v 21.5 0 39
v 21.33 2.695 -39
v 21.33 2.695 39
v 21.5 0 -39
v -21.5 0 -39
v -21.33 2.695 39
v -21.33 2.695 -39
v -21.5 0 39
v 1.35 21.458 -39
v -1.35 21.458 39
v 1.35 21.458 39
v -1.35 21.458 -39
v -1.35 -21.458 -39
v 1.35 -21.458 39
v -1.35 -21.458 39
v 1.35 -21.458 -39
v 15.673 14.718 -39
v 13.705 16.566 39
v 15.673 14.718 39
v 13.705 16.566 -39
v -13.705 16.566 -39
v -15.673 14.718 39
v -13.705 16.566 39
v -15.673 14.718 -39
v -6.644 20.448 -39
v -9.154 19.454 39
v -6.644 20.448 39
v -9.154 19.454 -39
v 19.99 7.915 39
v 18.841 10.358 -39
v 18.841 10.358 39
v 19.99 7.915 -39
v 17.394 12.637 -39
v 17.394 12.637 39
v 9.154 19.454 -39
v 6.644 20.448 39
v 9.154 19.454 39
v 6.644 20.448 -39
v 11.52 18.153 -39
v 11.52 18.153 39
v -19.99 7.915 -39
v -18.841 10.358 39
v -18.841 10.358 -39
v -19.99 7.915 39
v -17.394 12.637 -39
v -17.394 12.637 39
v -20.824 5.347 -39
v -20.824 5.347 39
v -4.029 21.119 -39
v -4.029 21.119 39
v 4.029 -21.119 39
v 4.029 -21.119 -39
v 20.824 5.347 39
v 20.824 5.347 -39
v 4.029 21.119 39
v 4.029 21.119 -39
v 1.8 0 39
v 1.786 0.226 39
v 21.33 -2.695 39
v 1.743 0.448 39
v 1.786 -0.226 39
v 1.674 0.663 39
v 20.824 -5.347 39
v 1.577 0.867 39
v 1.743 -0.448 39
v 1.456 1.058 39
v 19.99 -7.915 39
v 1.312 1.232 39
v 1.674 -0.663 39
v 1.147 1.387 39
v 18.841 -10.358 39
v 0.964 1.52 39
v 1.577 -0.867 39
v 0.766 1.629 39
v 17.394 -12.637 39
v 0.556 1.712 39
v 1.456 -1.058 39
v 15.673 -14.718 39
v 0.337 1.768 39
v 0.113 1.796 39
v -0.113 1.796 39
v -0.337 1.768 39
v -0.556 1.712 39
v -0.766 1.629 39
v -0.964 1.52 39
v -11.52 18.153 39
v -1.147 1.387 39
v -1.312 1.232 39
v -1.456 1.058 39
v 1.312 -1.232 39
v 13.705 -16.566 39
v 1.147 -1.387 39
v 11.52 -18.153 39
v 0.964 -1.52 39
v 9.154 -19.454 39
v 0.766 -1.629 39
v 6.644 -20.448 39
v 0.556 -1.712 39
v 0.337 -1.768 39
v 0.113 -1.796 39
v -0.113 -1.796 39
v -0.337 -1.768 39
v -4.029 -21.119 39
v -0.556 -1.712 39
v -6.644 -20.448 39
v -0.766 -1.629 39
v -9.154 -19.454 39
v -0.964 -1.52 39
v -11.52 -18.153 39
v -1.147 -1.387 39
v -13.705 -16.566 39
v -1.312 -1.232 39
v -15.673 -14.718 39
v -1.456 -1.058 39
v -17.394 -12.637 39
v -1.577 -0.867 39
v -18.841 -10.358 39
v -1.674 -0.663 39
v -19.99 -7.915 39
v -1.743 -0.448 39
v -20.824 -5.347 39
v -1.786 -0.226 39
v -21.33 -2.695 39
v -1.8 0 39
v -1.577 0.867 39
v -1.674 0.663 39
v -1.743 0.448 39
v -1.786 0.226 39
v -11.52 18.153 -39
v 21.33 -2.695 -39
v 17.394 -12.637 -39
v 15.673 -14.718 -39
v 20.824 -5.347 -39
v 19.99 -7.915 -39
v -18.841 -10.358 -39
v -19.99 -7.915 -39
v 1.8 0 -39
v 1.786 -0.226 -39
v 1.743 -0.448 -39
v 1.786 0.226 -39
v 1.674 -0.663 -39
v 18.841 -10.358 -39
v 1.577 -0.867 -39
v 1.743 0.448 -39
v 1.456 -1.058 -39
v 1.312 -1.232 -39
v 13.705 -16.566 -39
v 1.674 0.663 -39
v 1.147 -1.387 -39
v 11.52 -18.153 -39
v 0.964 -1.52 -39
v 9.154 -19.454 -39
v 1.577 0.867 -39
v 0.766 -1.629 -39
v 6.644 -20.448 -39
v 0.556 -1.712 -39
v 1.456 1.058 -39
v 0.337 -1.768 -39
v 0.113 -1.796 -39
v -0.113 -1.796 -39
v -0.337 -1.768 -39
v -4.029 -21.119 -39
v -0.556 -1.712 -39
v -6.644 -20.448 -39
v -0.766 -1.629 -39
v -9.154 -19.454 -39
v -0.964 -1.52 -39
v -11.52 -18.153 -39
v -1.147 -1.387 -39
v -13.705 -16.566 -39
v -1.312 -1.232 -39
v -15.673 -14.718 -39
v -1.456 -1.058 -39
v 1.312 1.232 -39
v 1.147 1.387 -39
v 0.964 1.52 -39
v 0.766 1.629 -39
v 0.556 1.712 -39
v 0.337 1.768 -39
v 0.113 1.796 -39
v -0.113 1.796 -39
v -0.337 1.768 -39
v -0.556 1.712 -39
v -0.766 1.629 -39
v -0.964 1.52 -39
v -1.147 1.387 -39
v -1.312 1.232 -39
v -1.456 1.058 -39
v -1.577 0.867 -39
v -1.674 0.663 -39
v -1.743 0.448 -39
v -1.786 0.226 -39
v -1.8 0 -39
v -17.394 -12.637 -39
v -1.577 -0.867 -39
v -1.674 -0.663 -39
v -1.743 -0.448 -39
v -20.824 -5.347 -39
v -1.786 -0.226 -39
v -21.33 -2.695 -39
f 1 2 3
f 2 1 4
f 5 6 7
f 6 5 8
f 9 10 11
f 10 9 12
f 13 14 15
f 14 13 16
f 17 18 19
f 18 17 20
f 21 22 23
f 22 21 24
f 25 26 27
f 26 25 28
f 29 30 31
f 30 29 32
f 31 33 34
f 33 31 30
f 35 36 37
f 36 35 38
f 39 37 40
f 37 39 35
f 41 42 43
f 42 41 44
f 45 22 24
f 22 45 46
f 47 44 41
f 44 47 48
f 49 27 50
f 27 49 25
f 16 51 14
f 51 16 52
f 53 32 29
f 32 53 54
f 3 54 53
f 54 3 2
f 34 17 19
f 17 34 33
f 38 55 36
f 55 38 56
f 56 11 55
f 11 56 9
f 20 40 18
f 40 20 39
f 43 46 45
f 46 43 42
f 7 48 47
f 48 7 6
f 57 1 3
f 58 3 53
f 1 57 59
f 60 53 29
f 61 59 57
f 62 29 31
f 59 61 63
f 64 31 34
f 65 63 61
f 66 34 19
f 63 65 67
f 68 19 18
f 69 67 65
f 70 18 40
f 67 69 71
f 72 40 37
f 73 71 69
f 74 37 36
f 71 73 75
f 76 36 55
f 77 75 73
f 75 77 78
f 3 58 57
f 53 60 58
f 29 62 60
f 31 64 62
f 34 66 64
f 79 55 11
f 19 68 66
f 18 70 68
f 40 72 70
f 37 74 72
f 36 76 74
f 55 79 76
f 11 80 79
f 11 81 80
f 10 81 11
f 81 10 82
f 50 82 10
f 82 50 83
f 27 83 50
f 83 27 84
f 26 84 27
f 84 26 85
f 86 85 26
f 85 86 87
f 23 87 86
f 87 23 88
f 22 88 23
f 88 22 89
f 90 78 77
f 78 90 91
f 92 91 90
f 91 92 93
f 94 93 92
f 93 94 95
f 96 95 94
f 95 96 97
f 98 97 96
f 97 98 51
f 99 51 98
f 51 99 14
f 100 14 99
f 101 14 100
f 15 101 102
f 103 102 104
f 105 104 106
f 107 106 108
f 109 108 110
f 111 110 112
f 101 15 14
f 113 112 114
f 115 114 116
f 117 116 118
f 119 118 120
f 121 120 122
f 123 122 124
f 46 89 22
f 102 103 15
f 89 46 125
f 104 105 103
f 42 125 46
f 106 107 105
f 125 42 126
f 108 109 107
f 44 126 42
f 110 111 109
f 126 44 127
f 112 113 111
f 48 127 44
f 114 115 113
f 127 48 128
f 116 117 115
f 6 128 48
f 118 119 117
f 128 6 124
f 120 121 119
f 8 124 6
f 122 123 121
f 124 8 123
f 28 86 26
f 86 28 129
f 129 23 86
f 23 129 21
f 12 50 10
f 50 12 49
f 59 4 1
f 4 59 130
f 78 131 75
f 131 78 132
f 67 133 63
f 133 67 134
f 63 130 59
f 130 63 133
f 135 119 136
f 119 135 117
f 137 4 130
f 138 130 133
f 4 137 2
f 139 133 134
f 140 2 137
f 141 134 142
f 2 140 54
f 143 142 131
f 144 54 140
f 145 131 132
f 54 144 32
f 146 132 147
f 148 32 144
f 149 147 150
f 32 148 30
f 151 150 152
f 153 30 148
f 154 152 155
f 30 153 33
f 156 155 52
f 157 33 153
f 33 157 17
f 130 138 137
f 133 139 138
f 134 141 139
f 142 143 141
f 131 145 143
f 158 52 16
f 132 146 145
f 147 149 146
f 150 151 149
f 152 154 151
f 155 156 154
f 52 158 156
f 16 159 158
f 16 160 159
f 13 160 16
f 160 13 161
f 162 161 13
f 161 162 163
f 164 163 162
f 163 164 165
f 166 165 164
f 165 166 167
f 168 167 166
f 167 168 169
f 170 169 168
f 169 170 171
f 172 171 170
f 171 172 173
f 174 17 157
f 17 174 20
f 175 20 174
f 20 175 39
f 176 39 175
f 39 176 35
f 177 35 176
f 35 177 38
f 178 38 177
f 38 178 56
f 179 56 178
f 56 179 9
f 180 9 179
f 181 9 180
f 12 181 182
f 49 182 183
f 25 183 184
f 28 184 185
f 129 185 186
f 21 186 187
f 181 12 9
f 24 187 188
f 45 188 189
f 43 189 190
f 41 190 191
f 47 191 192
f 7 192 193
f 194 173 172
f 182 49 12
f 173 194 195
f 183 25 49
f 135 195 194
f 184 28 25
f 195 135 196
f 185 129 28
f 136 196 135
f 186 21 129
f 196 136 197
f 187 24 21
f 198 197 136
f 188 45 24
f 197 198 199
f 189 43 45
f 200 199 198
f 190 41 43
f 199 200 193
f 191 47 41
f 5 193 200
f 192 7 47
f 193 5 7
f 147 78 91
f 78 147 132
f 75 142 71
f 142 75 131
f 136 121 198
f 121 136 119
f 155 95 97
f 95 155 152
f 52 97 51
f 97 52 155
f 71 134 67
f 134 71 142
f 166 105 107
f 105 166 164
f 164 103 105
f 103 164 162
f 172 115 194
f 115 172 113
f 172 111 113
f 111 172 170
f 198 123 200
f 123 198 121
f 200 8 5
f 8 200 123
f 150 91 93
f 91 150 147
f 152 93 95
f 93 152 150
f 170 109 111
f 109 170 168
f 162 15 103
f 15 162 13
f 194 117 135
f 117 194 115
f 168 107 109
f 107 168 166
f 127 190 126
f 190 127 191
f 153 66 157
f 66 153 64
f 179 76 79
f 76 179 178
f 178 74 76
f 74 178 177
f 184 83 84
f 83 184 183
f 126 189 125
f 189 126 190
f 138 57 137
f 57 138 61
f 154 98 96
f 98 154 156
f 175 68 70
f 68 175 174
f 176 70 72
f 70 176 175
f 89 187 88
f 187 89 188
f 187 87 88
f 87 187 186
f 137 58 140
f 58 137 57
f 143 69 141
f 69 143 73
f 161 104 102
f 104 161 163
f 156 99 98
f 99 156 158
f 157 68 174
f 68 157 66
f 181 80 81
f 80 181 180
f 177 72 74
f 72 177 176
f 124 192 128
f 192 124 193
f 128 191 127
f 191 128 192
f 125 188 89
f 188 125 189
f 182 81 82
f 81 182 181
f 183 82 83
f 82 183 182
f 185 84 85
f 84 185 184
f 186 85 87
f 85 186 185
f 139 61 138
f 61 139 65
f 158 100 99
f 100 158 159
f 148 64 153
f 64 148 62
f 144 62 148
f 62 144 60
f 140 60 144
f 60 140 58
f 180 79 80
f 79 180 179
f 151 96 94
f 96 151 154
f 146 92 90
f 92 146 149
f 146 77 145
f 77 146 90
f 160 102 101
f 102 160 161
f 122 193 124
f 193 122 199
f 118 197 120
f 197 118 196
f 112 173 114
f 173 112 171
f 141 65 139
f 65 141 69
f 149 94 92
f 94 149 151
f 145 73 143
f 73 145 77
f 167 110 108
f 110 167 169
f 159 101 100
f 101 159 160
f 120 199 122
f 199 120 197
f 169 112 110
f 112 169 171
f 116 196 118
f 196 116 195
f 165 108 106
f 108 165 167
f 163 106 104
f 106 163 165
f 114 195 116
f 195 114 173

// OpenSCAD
$fn = 50;


difference() {
	union() {
		translate(v = [0, 0, -39.0000000000]) {
			cylinder(h = 78, r = 21.5000000000);
		}
	}
	union() {
		translate(v = [0, 0, -100.0000000000]) {
			cylinder(h = 200, r = 1.8000000000);
		}
	}
}
